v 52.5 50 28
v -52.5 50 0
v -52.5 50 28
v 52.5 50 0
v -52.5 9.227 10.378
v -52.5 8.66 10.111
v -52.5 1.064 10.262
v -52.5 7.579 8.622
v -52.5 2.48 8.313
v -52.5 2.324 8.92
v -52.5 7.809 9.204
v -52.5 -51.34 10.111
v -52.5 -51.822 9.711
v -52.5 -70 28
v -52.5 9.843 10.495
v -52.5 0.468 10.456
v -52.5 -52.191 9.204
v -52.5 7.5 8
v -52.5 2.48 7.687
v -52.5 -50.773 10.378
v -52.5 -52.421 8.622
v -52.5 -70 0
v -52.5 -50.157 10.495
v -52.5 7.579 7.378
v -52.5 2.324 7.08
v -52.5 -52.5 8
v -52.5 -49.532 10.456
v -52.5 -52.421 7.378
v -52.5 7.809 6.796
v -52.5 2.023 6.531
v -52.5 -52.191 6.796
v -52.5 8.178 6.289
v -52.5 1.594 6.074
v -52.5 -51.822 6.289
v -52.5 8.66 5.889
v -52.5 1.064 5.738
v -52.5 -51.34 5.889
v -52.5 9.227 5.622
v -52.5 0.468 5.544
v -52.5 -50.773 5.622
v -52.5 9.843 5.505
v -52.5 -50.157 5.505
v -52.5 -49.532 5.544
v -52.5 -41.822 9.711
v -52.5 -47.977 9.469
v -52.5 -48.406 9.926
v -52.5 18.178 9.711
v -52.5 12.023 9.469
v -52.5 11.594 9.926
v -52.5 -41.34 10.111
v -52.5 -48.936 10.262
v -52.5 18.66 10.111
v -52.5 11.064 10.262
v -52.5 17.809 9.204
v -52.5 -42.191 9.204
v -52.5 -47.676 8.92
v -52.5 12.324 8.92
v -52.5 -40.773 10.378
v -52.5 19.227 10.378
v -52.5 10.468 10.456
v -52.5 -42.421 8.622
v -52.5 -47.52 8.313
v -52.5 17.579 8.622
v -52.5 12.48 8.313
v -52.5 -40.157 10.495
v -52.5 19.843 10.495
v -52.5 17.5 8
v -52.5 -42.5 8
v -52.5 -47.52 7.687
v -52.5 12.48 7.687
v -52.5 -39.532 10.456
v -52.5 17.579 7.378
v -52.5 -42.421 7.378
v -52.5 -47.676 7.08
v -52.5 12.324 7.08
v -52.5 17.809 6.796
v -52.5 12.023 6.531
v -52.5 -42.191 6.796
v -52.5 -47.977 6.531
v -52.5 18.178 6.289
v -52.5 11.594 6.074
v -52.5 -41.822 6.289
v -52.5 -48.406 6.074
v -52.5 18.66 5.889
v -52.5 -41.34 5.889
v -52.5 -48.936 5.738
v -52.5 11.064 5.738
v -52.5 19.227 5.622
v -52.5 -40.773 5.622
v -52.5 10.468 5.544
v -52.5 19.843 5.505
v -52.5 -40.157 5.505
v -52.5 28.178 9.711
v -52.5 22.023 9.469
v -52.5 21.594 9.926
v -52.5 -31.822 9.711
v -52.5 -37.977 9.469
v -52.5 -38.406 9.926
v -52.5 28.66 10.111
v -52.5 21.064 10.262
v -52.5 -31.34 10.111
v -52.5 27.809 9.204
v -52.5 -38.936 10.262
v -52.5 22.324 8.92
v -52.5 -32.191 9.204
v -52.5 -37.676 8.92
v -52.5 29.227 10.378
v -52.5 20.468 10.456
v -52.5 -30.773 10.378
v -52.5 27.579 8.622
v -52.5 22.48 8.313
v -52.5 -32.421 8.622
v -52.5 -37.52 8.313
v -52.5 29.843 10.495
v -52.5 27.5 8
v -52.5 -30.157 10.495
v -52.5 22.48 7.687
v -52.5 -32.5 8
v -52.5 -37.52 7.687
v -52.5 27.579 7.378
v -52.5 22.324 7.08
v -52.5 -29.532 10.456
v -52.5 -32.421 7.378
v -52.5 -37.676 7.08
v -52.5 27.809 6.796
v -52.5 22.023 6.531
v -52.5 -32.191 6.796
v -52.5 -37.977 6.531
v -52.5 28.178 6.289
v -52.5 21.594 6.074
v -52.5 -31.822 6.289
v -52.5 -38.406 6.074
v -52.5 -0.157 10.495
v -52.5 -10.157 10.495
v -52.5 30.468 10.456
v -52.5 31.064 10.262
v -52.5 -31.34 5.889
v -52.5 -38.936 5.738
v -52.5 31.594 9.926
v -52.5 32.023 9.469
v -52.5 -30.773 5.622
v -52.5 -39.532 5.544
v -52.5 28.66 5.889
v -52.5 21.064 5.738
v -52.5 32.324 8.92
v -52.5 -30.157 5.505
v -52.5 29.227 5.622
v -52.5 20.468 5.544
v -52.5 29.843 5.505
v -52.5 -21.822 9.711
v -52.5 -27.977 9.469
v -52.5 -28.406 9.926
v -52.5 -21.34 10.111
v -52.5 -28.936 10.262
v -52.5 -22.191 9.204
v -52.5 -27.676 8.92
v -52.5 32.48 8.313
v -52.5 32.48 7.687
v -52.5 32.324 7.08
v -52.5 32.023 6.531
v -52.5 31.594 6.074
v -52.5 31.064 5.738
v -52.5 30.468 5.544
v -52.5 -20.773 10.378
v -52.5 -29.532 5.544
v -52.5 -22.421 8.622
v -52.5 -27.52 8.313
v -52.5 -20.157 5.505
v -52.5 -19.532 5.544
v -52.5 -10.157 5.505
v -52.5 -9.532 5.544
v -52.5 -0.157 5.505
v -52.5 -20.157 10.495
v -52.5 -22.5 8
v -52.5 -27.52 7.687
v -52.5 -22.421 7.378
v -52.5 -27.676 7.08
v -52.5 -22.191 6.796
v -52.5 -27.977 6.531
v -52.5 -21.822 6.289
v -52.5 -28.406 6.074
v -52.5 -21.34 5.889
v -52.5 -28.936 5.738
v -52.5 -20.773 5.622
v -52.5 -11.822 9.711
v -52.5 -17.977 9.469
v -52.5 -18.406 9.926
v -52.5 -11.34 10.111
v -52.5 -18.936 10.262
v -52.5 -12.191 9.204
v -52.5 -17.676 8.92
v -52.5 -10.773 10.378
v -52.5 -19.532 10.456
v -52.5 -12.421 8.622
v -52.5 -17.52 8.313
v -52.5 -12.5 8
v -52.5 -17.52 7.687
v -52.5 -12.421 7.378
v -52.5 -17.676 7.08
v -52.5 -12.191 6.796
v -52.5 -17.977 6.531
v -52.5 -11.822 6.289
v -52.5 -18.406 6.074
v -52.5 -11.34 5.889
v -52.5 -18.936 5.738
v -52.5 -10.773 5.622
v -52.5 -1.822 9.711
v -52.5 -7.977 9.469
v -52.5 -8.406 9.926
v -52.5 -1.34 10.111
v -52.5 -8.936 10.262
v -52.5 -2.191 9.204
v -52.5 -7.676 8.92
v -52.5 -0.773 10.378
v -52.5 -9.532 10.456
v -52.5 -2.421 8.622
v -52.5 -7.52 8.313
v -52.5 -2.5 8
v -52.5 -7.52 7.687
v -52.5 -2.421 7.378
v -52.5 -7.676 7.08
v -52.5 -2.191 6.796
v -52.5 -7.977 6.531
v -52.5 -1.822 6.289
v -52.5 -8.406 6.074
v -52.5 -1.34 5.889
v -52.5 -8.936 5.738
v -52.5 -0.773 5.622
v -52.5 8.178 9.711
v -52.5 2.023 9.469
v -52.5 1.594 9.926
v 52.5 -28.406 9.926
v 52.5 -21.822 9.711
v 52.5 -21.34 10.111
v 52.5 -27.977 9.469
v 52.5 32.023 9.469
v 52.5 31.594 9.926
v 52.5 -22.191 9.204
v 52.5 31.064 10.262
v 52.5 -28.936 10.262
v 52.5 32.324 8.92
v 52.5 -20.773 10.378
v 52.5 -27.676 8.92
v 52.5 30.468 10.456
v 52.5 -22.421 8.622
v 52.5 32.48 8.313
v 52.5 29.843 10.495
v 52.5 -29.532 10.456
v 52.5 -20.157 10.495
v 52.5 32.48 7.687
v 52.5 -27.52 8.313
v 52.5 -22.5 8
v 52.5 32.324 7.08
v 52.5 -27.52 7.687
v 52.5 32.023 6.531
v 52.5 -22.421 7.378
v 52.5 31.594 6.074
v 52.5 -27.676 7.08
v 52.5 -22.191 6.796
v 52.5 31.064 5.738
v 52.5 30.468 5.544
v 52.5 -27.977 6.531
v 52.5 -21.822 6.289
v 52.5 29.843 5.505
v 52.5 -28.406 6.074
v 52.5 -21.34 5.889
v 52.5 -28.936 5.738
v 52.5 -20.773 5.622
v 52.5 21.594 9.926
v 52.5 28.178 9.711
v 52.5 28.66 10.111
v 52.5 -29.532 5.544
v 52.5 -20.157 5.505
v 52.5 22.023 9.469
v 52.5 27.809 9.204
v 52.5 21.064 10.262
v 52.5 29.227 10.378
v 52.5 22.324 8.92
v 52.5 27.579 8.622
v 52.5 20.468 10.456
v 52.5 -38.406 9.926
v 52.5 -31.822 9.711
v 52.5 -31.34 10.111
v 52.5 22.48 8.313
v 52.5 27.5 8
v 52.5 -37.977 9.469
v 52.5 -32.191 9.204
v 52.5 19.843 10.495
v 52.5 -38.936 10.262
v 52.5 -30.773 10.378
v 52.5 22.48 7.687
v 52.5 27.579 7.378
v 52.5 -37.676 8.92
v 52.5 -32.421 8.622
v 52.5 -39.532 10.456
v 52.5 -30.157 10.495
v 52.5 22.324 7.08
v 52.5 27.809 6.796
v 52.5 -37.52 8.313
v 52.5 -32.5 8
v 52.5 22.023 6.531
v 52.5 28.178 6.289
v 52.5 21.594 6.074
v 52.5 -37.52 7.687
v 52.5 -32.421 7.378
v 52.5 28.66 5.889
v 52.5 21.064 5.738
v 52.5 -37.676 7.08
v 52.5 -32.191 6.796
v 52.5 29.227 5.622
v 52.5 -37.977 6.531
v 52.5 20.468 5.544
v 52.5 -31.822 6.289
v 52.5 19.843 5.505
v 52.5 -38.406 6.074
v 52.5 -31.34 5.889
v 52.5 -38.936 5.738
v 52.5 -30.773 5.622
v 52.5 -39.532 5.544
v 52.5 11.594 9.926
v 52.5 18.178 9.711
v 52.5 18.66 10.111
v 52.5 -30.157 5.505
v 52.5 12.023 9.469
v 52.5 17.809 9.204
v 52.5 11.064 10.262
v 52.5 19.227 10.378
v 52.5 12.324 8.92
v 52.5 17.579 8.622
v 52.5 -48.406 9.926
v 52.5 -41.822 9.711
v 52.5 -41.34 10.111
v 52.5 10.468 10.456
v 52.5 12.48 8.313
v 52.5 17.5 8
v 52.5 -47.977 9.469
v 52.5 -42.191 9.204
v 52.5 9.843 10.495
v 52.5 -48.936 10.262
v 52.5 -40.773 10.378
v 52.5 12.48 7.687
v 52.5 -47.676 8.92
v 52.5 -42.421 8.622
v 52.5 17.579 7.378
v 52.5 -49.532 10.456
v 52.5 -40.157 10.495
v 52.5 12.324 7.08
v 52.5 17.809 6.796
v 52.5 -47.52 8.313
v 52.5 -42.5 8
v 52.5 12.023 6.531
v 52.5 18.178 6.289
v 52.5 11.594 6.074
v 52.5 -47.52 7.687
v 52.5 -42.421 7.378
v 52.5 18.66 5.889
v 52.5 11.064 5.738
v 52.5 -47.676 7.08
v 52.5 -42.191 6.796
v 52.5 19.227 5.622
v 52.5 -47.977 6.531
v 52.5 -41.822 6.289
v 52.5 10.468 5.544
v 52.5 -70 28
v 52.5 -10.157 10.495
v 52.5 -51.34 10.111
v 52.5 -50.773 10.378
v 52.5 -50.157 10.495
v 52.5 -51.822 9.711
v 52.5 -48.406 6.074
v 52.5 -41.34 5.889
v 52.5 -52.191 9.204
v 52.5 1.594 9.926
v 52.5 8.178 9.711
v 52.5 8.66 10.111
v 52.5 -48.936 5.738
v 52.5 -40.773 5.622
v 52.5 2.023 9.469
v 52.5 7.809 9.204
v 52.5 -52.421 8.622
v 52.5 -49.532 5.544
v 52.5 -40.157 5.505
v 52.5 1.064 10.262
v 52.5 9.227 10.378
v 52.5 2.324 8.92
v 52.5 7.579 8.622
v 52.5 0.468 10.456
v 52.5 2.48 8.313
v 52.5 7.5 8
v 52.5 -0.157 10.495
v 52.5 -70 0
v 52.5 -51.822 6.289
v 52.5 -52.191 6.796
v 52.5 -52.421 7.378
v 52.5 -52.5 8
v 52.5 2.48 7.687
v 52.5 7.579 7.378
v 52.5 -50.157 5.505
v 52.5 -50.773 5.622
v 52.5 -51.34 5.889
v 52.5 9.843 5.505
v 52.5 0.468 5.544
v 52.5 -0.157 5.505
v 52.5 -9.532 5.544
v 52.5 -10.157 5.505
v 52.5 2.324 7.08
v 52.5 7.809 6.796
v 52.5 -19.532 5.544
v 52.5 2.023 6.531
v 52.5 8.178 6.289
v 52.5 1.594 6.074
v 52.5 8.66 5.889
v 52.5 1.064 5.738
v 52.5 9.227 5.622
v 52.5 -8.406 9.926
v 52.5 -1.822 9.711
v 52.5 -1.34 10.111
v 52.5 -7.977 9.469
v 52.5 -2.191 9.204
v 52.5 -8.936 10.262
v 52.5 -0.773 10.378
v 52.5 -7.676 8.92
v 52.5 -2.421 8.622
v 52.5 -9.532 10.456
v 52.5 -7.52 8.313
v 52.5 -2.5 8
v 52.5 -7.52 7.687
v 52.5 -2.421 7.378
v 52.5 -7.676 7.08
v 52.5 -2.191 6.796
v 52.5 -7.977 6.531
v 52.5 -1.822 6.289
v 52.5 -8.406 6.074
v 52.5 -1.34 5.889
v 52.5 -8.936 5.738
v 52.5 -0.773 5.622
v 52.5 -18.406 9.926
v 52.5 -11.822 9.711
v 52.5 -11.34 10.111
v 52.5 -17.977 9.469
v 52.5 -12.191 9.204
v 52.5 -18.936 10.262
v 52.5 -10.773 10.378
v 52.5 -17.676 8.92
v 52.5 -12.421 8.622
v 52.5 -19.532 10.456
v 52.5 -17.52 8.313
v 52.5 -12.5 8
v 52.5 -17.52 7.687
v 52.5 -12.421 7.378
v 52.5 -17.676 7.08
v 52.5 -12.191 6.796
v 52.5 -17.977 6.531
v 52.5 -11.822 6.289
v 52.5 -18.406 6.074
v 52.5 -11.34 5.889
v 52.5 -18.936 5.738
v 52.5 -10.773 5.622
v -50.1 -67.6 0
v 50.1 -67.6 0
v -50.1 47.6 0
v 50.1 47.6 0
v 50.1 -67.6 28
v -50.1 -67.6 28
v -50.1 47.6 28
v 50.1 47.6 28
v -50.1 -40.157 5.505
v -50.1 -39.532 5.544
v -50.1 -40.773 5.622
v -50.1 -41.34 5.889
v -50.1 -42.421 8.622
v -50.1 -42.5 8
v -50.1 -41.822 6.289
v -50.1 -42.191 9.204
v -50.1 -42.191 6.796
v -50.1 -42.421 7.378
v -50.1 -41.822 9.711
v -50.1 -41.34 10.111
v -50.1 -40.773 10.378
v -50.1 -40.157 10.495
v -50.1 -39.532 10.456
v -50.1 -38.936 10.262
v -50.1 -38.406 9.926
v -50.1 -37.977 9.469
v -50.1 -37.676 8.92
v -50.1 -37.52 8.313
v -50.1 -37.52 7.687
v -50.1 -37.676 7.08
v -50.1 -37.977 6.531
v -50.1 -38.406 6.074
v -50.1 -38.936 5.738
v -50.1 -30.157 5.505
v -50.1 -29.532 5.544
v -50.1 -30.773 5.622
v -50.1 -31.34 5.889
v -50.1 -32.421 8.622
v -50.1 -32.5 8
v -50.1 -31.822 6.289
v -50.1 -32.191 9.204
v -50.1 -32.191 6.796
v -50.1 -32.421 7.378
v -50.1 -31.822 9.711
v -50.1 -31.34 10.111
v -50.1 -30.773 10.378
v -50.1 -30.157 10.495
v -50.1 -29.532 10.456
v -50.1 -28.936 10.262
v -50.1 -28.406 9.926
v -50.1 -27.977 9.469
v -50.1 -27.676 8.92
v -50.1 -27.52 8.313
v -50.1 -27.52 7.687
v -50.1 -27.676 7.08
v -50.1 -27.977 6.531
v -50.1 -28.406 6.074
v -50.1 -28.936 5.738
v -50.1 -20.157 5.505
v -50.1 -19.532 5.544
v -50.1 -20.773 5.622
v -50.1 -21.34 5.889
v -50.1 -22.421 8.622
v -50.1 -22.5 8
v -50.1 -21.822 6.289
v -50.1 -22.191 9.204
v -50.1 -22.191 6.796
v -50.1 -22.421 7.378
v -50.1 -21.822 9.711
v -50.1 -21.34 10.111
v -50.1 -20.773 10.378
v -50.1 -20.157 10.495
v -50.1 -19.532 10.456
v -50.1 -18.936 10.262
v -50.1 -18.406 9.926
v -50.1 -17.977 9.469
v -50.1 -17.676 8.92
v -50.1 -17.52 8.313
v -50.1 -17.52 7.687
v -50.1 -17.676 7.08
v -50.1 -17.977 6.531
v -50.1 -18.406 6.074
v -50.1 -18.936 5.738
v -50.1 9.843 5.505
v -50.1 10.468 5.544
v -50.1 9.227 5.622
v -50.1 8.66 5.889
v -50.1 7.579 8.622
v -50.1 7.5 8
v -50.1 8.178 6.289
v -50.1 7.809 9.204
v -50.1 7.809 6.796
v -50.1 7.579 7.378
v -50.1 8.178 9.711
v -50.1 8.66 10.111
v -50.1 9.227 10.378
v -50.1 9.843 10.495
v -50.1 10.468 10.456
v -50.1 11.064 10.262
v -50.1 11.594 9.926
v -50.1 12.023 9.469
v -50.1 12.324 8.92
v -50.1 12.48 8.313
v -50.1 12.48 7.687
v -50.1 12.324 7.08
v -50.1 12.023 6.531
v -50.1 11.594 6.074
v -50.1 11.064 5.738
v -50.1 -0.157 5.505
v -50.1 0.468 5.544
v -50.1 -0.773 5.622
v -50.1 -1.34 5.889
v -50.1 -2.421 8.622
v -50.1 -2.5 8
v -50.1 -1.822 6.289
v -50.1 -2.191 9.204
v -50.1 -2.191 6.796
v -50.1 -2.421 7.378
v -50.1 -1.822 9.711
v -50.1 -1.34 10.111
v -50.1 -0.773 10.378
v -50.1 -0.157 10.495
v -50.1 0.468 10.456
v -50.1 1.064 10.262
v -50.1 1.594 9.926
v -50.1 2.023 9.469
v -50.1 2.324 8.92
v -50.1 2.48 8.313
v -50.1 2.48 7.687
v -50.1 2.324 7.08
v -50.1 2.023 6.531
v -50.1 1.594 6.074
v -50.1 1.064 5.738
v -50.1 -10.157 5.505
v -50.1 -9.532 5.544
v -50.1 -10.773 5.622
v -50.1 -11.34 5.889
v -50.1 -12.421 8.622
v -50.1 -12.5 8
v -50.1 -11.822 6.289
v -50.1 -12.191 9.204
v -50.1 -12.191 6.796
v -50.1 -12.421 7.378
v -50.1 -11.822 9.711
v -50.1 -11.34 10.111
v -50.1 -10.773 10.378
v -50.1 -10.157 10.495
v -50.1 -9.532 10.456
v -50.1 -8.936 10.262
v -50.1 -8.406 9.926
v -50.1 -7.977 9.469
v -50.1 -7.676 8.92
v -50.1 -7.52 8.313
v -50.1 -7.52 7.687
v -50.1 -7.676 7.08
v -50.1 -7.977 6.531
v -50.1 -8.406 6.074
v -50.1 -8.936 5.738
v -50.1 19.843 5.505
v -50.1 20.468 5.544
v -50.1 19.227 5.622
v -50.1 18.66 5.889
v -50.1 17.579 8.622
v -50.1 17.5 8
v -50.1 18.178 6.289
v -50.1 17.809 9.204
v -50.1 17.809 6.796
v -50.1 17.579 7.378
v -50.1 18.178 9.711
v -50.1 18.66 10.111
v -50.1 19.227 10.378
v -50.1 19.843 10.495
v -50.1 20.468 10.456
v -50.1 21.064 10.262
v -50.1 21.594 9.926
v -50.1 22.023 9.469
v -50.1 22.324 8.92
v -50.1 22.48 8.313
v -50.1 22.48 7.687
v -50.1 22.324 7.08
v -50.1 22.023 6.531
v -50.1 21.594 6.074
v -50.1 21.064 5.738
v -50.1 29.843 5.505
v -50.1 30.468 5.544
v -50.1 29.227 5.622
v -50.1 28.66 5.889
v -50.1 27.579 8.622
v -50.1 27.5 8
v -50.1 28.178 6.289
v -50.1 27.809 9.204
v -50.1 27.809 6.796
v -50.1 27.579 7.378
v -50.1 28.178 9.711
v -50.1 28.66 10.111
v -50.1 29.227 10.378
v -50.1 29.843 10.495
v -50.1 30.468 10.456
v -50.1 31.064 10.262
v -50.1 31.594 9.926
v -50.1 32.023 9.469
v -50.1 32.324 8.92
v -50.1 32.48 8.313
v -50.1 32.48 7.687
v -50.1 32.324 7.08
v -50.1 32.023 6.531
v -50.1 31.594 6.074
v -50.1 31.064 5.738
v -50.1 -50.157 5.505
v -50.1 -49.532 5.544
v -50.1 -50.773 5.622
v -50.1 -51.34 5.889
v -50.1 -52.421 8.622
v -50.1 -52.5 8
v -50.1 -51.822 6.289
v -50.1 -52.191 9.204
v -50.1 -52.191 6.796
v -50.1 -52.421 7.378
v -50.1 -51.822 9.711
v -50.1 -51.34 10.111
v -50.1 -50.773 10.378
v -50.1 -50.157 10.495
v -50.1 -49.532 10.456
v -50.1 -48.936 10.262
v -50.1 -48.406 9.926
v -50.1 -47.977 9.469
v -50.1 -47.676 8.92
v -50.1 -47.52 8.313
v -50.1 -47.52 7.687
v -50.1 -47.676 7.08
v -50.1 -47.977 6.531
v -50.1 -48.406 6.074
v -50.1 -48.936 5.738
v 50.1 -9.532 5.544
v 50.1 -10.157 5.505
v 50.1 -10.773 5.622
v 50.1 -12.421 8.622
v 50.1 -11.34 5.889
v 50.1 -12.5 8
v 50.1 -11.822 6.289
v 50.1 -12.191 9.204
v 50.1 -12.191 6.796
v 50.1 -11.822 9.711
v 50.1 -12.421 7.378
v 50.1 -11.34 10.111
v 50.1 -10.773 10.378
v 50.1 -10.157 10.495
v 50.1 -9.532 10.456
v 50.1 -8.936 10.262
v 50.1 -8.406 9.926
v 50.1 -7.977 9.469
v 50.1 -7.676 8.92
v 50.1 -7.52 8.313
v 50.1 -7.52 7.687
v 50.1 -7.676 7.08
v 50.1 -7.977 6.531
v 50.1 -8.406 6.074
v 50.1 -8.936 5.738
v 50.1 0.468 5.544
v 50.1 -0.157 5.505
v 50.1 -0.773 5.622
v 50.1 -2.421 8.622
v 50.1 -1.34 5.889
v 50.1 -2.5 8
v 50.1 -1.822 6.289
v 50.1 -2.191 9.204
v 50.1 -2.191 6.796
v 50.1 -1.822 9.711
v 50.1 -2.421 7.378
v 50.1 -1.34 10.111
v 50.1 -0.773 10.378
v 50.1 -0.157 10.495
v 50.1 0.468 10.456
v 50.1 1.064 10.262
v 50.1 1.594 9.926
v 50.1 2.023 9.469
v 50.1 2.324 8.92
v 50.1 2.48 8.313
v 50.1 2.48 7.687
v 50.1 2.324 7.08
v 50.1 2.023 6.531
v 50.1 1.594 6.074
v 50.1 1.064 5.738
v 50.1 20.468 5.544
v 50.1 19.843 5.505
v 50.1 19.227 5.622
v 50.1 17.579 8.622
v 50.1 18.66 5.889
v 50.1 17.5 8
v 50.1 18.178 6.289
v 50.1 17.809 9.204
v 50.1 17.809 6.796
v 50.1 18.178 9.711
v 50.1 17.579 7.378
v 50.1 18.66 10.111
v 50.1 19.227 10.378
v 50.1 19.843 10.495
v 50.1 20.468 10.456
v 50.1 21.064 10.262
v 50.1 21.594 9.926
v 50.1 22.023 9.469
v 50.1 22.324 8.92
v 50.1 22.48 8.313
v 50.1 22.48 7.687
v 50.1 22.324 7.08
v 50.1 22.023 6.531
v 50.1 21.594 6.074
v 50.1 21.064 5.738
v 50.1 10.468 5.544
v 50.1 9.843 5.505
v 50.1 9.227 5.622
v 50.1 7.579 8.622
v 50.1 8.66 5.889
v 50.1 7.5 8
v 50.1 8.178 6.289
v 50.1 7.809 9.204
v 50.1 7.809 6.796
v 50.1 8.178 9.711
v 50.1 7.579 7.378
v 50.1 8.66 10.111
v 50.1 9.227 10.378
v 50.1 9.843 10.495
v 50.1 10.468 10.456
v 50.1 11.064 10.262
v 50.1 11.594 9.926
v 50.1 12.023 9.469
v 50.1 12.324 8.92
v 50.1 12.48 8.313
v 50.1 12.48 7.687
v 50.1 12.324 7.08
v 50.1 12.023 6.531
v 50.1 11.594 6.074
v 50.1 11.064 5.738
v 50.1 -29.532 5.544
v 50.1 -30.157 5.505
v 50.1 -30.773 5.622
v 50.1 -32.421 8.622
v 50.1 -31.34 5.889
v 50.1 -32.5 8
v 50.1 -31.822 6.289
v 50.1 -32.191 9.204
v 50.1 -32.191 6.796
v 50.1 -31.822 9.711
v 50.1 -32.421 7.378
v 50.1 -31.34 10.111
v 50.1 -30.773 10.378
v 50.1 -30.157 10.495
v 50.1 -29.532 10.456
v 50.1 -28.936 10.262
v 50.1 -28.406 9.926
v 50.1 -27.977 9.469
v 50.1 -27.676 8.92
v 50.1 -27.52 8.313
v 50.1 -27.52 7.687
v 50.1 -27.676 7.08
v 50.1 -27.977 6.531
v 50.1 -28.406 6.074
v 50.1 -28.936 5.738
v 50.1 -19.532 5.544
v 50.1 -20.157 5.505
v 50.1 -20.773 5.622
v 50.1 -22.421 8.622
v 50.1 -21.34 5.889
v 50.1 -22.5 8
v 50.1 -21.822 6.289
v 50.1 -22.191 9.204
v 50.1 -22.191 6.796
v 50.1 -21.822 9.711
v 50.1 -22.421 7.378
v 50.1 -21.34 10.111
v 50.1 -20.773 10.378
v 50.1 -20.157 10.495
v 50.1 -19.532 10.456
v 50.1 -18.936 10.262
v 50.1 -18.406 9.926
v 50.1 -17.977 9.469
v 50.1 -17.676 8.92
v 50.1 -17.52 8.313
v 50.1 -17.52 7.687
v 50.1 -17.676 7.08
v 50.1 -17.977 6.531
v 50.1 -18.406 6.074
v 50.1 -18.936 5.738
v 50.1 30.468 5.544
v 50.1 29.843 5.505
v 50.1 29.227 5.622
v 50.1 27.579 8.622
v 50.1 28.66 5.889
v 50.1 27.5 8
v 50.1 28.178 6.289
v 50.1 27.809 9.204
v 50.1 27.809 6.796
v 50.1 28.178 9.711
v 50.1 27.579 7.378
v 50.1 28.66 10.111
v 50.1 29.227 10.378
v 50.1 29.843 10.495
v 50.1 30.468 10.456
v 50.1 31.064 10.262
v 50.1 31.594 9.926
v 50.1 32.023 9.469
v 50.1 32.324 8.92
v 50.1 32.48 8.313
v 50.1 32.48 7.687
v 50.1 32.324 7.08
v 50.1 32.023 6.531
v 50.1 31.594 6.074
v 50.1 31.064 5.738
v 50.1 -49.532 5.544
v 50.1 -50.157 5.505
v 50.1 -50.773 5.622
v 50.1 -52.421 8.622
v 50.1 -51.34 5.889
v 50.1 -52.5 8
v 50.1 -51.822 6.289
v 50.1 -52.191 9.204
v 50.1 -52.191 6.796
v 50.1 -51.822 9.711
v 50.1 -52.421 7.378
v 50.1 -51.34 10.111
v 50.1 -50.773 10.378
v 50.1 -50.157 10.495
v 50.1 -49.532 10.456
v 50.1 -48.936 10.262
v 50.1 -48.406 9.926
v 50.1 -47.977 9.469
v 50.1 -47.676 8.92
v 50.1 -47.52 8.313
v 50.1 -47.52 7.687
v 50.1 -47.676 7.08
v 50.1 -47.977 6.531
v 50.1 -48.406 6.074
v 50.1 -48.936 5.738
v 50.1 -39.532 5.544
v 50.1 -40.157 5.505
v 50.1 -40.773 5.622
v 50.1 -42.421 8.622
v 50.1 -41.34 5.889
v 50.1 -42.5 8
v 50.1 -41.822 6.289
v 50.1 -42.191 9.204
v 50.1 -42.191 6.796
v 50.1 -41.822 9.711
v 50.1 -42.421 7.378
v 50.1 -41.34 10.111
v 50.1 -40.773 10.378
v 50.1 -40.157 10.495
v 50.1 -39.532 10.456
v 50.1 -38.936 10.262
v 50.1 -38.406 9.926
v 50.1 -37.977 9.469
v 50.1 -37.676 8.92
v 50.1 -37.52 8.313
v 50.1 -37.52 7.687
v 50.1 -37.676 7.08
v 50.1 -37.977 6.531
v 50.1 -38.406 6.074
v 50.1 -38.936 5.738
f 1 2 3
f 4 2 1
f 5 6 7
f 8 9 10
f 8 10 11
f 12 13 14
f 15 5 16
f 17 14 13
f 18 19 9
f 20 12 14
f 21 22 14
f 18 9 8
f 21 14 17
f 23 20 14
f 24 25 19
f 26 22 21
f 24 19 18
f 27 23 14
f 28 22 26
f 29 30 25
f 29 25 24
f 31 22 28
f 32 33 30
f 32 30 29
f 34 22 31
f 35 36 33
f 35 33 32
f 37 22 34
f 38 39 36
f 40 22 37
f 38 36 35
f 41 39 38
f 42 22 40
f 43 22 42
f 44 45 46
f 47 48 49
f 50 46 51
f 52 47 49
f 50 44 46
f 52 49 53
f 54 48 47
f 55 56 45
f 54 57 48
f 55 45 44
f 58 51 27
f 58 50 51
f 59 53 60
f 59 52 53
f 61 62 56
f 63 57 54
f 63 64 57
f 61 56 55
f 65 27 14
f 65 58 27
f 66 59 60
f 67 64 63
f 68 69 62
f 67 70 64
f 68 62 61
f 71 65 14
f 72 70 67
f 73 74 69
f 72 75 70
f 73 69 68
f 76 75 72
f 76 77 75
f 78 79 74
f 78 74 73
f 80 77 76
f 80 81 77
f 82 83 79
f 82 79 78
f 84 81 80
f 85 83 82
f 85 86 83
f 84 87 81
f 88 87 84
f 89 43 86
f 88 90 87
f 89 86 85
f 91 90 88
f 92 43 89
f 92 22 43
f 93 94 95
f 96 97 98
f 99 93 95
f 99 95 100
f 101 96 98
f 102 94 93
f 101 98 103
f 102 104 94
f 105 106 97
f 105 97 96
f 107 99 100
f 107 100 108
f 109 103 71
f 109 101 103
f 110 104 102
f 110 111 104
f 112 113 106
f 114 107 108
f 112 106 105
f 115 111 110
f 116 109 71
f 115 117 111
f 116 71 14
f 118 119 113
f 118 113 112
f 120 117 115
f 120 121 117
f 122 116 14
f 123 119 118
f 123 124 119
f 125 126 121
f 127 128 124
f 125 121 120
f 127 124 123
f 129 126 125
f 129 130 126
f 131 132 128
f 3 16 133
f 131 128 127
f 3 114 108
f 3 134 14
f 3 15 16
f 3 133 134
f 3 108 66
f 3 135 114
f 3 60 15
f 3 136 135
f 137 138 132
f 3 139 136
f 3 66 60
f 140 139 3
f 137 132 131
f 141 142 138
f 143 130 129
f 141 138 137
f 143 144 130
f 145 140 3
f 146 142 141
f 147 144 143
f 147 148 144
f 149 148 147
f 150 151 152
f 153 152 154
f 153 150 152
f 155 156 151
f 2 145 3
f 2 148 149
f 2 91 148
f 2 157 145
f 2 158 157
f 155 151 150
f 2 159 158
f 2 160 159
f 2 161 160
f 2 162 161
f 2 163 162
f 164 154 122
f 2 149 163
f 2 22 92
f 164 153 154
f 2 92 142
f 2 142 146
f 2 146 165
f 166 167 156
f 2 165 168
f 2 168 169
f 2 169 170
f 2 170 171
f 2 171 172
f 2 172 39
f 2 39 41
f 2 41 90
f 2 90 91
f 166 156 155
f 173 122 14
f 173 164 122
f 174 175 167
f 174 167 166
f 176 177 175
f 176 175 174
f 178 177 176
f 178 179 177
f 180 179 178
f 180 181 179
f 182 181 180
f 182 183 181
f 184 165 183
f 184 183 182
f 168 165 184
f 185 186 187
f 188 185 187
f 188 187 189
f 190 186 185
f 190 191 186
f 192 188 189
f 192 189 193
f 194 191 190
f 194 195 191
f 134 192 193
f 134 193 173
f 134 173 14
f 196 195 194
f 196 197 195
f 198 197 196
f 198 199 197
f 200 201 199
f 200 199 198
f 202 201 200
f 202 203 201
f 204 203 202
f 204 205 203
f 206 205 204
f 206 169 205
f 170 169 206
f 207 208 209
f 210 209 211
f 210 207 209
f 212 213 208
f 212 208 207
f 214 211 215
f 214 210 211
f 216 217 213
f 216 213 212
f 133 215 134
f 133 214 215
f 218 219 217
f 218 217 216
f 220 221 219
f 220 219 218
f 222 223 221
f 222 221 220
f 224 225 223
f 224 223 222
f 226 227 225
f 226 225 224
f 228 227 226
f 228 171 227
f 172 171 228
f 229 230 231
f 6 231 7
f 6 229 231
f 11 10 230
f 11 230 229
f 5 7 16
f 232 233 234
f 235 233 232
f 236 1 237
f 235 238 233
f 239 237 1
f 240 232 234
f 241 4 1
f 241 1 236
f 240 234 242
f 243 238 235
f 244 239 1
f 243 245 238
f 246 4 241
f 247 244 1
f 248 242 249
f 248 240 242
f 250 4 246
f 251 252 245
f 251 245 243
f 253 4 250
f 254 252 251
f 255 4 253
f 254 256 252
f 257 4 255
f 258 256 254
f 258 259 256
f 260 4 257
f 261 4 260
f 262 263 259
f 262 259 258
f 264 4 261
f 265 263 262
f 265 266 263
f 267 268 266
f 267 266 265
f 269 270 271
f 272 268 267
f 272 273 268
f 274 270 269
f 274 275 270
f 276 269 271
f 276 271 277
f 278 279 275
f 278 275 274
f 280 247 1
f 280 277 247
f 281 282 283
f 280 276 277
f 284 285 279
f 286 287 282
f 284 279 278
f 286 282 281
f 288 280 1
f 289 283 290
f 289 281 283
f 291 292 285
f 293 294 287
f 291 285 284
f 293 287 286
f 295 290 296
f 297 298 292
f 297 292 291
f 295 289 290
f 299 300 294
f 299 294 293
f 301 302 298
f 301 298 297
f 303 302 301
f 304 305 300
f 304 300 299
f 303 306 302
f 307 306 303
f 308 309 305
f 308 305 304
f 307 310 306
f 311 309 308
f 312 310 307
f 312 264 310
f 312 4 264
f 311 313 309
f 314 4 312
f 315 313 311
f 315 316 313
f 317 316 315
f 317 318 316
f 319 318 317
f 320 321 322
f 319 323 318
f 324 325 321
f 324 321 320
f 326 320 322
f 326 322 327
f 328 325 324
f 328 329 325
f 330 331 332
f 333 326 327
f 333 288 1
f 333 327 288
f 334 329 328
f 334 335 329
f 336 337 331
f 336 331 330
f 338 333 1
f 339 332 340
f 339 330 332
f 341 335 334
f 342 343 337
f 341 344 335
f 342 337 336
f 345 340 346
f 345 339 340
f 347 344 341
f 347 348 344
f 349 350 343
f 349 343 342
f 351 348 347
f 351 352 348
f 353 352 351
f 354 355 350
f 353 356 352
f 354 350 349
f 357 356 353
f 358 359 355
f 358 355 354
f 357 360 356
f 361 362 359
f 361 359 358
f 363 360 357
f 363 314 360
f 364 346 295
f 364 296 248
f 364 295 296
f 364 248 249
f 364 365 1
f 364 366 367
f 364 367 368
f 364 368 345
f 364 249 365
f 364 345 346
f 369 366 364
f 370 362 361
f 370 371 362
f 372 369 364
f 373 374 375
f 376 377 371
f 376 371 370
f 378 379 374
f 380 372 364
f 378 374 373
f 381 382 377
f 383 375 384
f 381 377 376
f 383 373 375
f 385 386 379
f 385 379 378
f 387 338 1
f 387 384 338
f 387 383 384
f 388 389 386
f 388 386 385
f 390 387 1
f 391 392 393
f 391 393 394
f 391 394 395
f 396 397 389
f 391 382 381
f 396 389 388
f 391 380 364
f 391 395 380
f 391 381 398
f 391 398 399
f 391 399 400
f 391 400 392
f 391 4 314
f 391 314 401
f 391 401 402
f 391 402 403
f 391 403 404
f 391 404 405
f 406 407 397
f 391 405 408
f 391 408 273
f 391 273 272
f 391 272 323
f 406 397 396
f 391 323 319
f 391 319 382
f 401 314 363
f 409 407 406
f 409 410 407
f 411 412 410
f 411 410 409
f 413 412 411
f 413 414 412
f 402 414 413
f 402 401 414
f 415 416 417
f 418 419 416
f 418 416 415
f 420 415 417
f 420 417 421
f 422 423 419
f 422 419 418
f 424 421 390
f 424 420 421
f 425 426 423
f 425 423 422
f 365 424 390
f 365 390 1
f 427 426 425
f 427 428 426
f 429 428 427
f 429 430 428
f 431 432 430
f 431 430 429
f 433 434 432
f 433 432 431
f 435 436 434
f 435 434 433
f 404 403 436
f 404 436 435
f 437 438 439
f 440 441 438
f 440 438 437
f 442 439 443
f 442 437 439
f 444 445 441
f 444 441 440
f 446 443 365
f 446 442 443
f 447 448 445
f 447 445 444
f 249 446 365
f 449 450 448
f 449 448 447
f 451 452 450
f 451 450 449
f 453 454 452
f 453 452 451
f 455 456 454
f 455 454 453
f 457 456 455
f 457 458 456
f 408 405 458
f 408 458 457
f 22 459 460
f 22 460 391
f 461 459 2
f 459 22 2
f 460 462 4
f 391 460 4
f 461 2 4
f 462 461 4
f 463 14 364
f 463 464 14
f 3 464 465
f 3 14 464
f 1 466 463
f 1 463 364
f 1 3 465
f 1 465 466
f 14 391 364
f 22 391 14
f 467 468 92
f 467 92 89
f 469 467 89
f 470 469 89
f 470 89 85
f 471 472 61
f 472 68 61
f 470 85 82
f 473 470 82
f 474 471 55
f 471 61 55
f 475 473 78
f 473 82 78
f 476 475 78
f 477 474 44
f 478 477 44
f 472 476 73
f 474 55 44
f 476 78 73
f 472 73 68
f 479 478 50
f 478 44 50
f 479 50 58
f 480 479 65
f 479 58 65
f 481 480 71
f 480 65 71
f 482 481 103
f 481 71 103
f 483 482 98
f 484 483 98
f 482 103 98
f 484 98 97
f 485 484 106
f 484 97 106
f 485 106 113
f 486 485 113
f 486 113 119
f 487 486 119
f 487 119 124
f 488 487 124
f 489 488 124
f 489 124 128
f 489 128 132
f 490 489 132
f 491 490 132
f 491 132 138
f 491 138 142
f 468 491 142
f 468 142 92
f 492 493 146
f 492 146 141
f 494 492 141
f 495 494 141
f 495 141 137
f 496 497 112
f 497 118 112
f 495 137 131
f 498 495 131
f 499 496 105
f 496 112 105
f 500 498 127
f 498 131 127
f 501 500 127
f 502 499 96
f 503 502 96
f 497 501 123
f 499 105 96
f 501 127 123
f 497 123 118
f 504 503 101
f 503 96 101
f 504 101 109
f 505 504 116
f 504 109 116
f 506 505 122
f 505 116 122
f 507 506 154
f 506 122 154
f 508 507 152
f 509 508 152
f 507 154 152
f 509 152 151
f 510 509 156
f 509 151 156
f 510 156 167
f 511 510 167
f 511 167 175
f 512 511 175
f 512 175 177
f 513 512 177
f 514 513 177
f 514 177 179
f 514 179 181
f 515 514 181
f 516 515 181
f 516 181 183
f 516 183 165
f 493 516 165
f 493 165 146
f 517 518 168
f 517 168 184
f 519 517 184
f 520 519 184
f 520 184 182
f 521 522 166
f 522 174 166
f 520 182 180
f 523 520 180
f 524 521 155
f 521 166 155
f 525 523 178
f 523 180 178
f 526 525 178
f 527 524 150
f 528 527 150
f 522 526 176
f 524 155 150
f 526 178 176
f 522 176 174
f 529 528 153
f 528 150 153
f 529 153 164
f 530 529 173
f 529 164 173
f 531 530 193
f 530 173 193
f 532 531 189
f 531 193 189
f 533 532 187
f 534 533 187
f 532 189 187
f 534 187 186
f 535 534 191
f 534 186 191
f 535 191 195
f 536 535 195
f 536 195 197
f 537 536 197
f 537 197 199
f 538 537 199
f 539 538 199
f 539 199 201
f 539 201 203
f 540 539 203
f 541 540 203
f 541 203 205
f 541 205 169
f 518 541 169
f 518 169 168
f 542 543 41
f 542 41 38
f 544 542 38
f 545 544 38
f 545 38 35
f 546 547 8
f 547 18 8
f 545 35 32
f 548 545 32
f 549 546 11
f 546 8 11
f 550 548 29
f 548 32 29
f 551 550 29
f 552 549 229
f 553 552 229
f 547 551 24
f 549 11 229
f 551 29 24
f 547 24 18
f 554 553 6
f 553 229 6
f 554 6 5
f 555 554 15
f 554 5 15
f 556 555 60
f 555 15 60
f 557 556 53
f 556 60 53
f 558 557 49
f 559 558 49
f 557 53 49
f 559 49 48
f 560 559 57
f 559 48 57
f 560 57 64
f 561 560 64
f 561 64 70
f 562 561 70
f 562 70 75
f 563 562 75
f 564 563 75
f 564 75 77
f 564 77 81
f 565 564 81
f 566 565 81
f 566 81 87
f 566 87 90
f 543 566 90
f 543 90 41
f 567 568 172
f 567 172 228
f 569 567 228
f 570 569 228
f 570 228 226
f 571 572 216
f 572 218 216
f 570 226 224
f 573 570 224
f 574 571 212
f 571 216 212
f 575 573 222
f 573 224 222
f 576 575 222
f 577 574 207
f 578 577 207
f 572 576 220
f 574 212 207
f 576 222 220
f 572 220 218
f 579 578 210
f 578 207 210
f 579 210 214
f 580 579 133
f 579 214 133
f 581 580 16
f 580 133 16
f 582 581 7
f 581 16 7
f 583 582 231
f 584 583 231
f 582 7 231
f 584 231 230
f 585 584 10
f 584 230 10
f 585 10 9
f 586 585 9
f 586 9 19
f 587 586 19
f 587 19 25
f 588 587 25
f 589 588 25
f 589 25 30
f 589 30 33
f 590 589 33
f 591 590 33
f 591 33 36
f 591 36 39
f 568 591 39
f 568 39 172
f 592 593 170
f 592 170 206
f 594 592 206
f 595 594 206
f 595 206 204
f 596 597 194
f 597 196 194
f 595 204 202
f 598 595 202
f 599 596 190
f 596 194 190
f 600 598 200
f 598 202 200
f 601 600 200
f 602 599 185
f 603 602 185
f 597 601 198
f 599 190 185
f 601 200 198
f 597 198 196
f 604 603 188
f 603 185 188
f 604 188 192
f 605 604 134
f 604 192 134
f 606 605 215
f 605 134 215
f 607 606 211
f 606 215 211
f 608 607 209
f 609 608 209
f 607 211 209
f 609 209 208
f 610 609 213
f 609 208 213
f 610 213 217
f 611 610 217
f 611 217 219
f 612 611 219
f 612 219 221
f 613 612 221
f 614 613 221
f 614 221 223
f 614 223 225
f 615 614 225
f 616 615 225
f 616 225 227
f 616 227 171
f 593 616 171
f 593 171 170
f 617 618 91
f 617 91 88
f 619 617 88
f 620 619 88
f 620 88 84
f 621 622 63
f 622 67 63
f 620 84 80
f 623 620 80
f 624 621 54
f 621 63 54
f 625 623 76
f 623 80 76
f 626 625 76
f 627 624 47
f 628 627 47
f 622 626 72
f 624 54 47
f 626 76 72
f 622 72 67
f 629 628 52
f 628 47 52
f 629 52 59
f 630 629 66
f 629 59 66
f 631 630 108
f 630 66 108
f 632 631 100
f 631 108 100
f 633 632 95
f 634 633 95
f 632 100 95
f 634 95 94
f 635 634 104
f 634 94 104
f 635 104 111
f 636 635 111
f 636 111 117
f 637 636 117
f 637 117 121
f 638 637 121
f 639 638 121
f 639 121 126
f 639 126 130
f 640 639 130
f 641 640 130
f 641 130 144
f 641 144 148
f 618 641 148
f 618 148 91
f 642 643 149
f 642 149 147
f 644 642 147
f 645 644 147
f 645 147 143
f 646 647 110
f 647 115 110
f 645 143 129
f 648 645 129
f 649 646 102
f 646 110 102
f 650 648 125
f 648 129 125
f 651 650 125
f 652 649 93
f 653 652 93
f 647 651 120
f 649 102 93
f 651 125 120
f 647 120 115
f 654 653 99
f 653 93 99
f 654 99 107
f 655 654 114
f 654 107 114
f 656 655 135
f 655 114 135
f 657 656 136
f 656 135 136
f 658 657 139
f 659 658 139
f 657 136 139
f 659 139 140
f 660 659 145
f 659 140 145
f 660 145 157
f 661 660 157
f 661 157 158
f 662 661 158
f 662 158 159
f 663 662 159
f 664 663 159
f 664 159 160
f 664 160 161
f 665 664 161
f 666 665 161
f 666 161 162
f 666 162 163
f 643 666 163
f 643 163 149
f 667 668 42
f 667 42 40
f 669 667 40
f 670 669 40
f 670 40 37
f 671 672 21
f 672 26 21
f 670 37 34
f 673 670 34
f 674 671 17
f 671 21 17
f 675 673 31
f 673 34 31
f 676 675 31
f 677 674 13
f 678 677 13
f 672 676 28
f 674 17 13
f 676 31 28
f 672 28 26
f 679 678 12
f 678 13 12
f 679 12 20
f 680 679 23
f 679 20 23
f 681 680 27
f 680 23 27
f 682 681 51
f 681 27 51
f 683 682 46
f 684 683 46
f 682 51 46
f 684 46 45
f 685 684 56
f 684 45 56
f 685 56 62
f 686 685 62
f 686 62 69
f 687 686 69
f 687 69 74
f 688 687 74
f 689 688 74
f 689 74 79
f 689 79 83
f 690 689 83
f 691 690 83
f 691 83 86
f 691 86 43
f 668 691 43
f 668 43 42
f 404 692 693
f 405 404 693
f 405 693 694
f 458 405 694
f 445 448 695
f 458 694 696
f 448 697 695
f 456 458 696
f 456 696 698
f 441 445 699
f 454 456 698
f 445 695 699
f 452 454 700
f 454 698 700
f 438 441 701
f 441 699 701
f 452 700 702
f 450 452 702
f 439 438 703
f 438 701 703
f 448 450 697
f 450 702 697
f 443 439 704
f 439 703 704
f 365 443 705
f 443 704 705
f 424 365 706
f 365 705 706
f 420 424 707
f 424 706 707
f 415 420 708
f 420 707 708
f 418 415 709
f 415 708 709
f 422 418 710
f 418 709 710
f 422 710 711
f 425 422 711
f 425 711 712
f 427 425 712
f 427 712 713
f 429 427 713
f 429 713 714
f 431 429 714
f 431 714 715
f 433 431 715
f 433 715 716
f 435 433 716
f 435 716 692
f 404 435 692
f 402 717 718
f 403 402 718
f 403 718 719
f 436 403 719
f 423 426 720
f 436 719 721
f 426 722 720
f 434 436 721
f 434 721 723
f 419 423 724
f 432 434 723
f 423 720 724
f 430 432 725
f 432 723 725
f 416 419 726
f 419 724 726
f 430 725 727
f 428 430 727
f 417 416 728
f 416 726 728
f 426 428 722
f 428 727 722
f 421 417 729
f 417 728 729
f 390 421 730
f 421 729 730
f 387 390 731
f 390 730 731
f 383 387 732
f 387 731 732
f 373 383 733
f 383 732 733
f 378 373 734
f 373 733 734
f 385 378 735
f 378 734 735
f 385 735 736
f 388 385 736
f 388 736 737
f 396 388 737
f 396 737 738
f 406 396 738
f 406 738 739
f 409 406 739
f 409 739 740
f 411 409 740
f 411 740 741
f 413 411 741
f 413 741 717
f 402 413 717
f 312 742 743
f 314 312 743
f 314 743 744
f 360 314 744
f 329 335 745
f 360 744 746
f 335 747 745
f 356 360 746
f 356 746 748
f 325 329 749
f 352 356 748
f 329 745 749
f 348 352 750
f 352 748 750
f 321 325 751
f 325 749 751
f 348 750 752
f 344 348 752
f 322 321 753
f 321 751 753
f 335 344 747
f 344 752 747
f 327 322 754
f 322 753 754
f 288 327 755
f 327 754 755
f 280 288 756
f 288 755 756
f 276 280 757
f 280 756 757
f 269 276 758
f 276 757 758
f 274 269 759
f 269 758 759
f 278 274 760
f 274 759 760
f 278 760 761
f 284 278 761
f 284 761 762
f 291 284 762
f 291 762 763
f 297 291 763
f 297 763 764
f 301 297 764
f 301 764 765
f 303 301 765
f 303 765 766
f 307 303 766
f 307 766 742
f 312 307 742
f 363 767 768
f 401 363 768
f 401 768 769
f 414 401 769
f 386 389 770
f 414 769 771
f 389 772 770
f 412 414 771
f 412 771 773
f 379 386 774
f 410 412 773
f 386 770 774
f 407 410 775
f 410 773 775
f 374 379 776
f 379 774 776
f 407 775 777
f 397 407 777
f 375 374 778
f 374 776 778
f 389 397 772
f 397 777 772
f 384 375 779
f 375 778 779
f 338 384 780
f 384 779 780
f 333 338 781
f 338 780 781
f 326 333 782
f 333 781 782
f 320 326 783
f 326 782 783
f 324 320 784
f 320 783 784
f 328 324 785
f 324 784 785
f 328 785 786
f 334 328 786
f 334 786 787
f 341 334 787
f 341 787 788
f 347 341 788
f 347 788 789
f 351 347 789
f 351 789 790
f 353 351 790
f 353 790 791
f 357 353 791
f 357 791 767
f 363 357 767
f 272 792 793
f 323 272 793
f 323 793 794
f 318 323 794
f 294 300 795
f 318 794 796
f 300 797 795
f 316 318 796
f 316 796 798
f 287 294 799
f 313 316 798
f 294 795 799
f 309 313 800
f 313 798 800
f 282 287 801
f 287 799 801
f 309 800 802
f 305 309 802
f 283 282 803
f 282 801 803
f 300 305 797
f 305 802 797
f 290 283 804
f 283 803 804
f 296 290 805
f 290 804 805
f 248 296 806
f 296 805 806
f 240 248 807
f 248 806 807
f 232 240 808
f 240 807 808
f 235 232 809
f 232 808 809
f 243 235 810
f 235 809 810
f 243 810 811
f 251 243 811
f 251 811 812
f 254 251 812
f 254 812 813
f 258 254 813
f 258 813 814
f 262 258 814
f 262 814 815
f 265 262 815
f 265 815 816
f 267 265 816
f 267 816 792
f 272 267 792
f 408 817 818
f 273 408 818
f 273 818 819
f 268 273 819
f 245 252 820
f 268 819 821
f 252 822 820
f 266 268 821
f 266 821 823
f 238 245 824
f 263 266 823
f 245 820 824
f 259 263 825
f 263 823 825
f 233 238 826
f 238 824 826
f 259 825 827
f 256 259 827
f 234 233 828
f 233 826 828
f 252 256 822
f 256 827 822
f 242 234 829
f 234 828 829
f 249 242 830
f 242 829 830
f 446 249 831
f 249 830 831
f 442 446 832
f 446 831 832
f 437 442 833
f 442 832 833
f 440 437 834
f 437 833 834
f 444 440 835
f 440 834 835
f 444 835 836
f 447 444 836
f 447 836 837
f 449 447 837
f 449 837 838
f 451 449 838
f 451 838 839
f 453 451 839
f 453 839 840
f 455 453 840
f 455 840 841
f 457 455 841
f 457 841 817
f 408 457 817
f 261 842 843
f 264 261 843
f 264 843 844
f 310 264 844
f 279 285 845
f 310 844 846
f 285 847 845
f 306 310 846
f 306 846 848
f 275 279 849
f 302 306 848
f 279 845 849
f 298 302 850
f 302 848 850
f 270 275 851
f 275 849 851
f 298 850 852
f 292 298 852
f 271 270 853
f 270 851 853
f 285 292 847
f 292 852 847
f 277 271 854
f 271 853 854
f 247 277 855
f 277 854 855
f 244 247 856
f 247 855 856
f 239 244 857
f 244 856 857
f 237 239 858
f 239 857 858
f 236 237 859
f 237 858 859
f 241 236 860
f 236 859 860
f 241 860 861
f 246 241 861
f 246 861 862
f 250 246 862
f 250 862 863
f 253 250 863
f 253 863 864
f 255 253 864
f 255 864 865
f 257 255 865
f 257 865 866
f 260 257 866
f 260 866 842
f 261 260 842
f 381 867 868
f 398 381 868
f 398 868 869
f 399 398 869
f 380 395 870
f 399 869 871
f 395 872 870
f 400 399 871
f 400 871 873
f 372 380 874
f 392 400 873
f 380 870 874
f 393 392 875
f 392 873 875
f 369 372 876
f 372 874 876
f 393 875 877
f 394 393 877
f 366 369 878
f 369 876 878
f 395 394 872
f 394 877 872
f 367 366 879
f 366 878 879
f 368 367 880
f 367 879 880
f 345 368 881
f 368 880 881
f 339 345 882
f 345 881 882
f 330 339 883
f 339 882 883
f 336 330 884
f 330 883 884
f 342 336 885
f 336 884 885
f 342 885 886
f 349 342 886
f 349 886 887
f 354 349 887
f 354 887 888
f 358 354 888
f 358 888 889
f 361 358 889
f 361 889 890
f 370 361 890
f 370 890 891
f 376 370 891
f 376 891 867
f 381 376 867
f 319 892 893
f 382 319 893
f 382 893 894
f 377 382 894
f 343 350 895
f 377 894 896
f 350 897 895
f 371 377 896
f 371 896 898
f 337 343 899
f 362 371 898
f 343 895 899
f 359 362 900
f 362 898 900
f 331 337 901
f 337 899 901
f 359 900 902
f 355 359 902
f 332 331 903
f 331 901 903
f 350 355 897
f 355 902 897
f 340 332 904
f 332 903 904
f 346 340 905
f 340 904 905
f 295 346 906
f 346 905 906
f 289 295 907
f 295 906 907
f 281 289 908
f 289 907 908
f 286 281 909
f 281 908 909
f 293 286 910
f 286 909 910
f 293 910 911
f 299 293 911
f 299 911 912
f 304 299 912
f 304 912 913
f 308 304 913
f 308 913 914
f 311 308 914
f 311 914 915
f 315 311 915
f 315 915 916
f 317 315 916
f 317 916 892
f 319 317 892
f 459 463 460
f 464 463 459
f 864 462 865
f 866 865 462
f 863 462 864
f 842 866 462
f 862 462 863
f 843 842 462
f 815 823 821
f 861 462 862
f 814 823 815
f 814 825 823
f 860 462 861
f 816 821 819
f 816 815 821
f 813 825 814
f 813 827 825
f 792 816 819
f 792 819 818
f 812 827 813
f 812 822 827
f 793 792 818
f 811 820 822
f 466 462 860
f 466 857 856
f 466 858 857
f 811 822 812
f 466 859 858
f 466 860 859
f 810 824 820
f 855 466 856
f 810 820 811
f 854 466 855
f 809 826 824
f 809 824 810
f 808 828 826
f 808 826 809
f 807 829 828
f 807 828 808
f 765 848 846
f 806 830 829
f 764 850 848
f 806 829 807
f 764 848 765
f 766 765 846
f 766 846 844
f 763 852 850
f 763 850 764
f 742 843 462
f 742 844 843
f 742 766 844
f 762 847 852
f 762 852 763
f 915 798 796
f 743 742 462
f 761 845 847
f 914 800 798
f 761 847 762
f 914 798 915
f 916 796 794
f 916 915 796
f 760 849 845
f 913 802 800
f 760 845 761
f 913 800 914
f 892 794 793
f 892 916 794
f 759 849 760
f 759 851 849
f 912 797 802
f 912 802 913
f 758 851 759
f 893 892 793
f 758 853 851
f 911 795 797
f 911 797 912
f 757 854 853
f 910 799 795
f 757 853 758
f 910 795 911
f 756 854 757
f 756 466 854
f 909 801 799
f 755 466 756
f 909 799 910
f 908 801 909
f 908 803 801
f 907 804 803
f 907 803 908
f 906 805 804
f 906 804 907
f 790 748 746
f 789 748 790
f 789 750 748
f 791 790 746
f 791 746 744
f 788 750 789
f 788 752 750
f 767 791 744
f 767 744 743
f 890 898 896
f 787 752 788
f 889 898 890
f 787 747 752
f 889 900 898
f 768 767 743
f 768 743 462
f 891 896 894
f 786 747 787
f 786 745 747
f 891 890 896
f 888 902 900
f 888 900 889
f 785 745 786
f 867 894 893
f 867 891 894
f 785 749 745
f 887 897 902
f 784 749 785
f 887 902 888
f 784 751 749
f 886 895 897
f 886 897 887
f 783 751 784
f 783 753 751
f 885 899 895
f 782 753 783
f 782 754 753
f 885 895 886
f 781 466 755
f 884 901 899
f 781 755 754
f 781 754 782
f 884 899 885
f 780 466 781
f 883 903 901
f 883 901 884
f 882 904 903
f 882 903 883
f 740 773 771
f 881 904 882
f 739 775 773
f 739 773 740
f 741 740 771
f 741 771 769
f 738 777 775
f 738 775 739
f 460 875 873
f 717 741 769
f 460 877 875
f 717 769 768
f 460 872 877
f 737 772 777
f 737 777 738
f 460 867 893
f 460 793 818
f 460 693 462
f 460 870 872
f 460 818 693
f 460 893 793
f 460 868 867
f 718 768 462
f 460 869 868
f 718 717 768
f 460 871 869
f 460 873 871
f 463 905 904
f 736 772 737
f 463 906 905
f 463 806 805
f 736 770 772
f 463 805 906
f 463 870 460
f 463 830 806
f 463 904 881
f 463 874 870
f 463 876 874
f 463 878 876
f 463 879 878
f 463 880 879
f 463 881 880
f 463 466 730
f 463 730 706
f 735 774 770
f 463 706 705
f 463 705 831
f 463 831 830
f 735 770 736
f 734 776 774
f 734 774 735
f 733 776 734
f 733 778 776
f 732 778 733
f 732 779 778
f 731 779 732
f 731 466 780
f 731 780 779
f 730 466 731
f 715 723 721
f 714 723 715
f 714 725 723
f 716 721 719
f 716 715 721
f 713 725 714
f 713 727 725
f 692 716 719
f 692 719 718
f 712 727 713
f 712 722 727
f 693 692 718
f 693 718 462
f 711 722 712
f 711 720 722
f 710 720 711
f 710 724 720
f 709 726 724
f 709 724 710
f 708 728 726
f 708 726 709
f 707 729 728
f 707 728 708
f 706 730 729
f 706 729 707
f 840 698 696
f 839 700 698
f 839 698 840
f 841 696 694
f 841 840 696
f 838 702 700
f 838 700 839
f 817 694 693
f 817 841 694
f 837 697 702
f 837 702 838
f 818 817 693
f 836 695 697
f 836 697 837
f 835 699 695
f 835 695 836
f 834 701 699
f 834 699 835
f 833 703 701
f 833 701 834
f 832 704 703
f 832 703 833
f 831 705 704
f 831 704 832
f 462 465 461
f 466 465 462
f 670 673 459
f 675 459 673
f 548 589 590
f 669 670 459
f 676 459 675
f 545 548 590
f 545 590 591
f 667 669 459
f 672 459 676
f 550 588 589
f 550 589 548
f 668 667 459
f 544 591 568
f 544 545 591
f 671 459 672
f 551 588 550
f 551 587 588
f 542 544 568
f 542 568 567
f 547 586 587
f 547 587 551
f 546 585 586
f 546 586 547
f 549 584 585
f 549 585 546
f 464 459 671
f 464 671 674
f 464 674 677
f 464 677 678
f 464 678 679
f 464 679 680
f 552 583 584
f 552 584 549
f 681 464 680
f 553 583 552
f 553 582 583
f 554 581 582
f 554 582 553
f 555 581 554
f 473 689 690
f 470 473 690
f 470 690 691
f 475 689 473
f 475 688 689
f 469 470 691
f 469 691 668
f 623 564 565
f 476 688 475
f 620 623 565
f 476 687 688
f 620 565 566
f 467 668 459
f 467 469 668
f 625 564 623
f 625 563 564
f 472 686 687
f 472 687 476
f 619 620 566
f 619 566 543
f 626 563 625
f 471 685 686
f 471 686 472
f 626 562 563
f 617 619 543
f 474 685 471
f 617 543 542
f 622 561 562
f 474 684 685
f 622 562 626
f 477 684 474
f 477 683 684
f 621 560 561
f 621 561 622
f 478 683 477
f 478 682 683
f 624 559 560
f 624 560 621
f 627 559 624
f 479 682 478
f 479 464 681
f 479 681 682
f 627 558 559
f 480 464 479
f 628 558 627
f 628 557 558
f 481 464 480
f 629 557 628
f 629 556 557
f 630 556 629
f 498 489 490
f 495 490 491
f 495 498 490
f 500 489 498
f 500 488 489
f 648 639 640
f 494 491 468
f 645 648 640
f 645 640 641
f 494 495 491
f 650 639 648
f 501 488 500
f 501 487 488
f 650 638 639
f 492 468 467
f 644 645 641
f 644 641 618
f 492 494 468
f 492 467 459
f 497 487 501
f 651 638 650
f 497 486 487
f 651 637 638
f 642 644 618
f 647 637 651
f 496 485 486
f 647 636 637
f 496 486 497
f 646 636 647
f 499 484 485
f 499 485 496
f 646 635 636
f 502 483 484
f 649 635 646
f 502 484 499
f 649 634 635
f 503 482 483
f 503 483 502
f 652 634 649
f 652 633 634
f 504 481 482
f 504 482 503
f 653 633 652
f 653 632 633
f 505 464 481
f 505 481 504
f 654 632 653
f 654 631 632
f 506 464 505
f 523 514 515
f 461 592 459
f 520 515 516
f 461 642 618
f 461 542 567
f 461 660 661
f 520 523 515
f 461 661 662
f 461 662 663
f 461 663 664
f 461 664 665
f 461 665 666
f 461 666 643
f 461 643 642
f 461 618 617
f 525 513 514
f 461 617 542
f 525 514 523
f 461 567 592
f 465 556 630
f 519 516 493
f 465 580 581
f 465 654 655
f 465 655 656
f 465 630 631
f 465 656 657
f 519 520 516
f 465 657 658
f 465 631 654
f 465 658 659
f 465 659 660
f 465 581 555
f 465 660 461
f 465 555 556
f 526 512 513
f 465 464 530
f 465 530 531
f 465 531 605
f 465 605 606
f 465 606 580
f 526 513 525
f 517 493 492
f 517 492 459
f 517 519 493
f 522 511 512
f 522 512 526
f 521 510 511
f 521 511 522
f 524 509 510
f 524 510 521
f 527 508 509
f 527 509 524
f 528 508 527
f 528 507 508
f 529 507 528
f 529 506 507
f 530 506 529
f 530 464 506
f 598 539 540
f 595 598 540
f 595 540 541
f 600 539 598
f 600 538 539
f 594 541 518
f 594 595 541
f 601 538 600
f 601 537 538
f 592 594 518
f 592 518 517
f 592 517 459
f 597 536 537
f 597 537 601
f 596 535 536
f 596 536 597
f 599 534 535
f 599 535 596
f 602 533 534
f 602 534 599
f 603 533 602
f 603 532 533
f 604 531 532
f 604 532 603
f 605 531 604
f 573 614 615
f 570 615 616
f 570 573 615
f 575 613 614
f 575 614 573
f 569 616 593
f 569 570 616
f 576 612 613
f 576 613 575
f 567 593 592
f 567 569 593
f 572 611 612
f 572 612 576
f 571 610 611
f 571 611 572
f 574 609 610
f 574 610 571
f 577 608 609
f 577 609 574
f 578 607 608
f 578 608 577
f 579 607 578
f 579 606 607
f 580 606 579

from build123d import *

# Parameters (mm, degrees)
SKETCH_W        = 105
SKETCH_H        = 120
PAD_DEPTH       = 28
SKETCH001_W     = 100.2
SKETCH001_H     = 115.2
POCKET_DEPTH    = 28.001
SKETCH002_R     = 2.5
POCKET001_DEPTH = 105.001


with BuildPart() as part:
    # Sketch → Pad (new body)
    with BuildSketch(Plane.XY):
        with Locations((0, -10)):
            Rectangle(SKETCH_W, SKETCH_H)
    extrude(amount=PAD_DEPTH)

    # Sketch001 → Pocket (cut, through all)
    with BuildSketch(Plane.XY.offset(28)):
        with Locations((0, -10)):
            Rectangle(SKETCH001_W, SKETCH001_H)
    extrude(amount=-POCKET_DEPTH, mode=Mode.SUBTRACT)

    # Sketch002 → Pocket001 (cut, through all)
    with BuildSketch(Plane(origin=(-52.5, 0, 0), x_dir=(0, -1, 0), z_dir=(-1, 0, 0))):
        with Locations((-10, 8)):
            Circle(SKETCH002_R)
        with Locations((10, 8)):
            Circle(SKETCH002_R)
        with Locations((-20, 8)):
            Circle(SKETCH002_R)
        with Locations((20, 8)):
            Circle(SKETCH002_R)
        with Locations((30, 8)):
            Circle(SKETCH002_R)
        with Locations((40, 8)):
            Circle(SKETCH002_R)
        with Locations((50, 8)):
            Circle(SKETCH002_R)
        with Locations((-30, 8)):
            Circle(SKETCH002_R)
        with Locations((0, 8)):
            Circle(SKETCH002_R)
    extrude(amount=-POCKET001_DEPTH, mode=Mode.SUBTRACT)


solid = part.part
